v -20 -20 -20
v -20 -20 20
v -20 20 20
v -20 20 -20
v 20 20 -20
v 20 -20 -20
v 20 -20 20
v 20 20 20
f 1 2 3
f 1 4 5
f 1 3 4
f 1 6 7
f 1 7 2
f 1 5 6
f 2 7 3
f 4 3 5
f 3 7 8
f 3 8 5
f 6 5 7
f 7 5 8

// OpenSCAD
// Start: lazy_union
default_5_default_5();
// End: lazy_union

// Modules.

// 'PartMaterial undef-default - default 5.0'
module default_5_default_5() {
  // 'None : _combine_solids_and_holes'
  union() {
    // 'default : _combine_solids_and_holes'
    union() {
      // 'box'
      multmatrix(m=[[1.0, 0.0, 0.0, -20.0], [0.0, 1.0, 0.0, -20.0], [0.0, 0.0, 1.0, -20.0], [0.0, 0.0, 0.0, 1.0]]) {
        // 'box : _combine_solids_and_holes'
        union() {
          // 'box'
          cube(size=[40.0, 40.0, 40.0]);
        }
      }
    }
  }
} // end module default_5_default_5
